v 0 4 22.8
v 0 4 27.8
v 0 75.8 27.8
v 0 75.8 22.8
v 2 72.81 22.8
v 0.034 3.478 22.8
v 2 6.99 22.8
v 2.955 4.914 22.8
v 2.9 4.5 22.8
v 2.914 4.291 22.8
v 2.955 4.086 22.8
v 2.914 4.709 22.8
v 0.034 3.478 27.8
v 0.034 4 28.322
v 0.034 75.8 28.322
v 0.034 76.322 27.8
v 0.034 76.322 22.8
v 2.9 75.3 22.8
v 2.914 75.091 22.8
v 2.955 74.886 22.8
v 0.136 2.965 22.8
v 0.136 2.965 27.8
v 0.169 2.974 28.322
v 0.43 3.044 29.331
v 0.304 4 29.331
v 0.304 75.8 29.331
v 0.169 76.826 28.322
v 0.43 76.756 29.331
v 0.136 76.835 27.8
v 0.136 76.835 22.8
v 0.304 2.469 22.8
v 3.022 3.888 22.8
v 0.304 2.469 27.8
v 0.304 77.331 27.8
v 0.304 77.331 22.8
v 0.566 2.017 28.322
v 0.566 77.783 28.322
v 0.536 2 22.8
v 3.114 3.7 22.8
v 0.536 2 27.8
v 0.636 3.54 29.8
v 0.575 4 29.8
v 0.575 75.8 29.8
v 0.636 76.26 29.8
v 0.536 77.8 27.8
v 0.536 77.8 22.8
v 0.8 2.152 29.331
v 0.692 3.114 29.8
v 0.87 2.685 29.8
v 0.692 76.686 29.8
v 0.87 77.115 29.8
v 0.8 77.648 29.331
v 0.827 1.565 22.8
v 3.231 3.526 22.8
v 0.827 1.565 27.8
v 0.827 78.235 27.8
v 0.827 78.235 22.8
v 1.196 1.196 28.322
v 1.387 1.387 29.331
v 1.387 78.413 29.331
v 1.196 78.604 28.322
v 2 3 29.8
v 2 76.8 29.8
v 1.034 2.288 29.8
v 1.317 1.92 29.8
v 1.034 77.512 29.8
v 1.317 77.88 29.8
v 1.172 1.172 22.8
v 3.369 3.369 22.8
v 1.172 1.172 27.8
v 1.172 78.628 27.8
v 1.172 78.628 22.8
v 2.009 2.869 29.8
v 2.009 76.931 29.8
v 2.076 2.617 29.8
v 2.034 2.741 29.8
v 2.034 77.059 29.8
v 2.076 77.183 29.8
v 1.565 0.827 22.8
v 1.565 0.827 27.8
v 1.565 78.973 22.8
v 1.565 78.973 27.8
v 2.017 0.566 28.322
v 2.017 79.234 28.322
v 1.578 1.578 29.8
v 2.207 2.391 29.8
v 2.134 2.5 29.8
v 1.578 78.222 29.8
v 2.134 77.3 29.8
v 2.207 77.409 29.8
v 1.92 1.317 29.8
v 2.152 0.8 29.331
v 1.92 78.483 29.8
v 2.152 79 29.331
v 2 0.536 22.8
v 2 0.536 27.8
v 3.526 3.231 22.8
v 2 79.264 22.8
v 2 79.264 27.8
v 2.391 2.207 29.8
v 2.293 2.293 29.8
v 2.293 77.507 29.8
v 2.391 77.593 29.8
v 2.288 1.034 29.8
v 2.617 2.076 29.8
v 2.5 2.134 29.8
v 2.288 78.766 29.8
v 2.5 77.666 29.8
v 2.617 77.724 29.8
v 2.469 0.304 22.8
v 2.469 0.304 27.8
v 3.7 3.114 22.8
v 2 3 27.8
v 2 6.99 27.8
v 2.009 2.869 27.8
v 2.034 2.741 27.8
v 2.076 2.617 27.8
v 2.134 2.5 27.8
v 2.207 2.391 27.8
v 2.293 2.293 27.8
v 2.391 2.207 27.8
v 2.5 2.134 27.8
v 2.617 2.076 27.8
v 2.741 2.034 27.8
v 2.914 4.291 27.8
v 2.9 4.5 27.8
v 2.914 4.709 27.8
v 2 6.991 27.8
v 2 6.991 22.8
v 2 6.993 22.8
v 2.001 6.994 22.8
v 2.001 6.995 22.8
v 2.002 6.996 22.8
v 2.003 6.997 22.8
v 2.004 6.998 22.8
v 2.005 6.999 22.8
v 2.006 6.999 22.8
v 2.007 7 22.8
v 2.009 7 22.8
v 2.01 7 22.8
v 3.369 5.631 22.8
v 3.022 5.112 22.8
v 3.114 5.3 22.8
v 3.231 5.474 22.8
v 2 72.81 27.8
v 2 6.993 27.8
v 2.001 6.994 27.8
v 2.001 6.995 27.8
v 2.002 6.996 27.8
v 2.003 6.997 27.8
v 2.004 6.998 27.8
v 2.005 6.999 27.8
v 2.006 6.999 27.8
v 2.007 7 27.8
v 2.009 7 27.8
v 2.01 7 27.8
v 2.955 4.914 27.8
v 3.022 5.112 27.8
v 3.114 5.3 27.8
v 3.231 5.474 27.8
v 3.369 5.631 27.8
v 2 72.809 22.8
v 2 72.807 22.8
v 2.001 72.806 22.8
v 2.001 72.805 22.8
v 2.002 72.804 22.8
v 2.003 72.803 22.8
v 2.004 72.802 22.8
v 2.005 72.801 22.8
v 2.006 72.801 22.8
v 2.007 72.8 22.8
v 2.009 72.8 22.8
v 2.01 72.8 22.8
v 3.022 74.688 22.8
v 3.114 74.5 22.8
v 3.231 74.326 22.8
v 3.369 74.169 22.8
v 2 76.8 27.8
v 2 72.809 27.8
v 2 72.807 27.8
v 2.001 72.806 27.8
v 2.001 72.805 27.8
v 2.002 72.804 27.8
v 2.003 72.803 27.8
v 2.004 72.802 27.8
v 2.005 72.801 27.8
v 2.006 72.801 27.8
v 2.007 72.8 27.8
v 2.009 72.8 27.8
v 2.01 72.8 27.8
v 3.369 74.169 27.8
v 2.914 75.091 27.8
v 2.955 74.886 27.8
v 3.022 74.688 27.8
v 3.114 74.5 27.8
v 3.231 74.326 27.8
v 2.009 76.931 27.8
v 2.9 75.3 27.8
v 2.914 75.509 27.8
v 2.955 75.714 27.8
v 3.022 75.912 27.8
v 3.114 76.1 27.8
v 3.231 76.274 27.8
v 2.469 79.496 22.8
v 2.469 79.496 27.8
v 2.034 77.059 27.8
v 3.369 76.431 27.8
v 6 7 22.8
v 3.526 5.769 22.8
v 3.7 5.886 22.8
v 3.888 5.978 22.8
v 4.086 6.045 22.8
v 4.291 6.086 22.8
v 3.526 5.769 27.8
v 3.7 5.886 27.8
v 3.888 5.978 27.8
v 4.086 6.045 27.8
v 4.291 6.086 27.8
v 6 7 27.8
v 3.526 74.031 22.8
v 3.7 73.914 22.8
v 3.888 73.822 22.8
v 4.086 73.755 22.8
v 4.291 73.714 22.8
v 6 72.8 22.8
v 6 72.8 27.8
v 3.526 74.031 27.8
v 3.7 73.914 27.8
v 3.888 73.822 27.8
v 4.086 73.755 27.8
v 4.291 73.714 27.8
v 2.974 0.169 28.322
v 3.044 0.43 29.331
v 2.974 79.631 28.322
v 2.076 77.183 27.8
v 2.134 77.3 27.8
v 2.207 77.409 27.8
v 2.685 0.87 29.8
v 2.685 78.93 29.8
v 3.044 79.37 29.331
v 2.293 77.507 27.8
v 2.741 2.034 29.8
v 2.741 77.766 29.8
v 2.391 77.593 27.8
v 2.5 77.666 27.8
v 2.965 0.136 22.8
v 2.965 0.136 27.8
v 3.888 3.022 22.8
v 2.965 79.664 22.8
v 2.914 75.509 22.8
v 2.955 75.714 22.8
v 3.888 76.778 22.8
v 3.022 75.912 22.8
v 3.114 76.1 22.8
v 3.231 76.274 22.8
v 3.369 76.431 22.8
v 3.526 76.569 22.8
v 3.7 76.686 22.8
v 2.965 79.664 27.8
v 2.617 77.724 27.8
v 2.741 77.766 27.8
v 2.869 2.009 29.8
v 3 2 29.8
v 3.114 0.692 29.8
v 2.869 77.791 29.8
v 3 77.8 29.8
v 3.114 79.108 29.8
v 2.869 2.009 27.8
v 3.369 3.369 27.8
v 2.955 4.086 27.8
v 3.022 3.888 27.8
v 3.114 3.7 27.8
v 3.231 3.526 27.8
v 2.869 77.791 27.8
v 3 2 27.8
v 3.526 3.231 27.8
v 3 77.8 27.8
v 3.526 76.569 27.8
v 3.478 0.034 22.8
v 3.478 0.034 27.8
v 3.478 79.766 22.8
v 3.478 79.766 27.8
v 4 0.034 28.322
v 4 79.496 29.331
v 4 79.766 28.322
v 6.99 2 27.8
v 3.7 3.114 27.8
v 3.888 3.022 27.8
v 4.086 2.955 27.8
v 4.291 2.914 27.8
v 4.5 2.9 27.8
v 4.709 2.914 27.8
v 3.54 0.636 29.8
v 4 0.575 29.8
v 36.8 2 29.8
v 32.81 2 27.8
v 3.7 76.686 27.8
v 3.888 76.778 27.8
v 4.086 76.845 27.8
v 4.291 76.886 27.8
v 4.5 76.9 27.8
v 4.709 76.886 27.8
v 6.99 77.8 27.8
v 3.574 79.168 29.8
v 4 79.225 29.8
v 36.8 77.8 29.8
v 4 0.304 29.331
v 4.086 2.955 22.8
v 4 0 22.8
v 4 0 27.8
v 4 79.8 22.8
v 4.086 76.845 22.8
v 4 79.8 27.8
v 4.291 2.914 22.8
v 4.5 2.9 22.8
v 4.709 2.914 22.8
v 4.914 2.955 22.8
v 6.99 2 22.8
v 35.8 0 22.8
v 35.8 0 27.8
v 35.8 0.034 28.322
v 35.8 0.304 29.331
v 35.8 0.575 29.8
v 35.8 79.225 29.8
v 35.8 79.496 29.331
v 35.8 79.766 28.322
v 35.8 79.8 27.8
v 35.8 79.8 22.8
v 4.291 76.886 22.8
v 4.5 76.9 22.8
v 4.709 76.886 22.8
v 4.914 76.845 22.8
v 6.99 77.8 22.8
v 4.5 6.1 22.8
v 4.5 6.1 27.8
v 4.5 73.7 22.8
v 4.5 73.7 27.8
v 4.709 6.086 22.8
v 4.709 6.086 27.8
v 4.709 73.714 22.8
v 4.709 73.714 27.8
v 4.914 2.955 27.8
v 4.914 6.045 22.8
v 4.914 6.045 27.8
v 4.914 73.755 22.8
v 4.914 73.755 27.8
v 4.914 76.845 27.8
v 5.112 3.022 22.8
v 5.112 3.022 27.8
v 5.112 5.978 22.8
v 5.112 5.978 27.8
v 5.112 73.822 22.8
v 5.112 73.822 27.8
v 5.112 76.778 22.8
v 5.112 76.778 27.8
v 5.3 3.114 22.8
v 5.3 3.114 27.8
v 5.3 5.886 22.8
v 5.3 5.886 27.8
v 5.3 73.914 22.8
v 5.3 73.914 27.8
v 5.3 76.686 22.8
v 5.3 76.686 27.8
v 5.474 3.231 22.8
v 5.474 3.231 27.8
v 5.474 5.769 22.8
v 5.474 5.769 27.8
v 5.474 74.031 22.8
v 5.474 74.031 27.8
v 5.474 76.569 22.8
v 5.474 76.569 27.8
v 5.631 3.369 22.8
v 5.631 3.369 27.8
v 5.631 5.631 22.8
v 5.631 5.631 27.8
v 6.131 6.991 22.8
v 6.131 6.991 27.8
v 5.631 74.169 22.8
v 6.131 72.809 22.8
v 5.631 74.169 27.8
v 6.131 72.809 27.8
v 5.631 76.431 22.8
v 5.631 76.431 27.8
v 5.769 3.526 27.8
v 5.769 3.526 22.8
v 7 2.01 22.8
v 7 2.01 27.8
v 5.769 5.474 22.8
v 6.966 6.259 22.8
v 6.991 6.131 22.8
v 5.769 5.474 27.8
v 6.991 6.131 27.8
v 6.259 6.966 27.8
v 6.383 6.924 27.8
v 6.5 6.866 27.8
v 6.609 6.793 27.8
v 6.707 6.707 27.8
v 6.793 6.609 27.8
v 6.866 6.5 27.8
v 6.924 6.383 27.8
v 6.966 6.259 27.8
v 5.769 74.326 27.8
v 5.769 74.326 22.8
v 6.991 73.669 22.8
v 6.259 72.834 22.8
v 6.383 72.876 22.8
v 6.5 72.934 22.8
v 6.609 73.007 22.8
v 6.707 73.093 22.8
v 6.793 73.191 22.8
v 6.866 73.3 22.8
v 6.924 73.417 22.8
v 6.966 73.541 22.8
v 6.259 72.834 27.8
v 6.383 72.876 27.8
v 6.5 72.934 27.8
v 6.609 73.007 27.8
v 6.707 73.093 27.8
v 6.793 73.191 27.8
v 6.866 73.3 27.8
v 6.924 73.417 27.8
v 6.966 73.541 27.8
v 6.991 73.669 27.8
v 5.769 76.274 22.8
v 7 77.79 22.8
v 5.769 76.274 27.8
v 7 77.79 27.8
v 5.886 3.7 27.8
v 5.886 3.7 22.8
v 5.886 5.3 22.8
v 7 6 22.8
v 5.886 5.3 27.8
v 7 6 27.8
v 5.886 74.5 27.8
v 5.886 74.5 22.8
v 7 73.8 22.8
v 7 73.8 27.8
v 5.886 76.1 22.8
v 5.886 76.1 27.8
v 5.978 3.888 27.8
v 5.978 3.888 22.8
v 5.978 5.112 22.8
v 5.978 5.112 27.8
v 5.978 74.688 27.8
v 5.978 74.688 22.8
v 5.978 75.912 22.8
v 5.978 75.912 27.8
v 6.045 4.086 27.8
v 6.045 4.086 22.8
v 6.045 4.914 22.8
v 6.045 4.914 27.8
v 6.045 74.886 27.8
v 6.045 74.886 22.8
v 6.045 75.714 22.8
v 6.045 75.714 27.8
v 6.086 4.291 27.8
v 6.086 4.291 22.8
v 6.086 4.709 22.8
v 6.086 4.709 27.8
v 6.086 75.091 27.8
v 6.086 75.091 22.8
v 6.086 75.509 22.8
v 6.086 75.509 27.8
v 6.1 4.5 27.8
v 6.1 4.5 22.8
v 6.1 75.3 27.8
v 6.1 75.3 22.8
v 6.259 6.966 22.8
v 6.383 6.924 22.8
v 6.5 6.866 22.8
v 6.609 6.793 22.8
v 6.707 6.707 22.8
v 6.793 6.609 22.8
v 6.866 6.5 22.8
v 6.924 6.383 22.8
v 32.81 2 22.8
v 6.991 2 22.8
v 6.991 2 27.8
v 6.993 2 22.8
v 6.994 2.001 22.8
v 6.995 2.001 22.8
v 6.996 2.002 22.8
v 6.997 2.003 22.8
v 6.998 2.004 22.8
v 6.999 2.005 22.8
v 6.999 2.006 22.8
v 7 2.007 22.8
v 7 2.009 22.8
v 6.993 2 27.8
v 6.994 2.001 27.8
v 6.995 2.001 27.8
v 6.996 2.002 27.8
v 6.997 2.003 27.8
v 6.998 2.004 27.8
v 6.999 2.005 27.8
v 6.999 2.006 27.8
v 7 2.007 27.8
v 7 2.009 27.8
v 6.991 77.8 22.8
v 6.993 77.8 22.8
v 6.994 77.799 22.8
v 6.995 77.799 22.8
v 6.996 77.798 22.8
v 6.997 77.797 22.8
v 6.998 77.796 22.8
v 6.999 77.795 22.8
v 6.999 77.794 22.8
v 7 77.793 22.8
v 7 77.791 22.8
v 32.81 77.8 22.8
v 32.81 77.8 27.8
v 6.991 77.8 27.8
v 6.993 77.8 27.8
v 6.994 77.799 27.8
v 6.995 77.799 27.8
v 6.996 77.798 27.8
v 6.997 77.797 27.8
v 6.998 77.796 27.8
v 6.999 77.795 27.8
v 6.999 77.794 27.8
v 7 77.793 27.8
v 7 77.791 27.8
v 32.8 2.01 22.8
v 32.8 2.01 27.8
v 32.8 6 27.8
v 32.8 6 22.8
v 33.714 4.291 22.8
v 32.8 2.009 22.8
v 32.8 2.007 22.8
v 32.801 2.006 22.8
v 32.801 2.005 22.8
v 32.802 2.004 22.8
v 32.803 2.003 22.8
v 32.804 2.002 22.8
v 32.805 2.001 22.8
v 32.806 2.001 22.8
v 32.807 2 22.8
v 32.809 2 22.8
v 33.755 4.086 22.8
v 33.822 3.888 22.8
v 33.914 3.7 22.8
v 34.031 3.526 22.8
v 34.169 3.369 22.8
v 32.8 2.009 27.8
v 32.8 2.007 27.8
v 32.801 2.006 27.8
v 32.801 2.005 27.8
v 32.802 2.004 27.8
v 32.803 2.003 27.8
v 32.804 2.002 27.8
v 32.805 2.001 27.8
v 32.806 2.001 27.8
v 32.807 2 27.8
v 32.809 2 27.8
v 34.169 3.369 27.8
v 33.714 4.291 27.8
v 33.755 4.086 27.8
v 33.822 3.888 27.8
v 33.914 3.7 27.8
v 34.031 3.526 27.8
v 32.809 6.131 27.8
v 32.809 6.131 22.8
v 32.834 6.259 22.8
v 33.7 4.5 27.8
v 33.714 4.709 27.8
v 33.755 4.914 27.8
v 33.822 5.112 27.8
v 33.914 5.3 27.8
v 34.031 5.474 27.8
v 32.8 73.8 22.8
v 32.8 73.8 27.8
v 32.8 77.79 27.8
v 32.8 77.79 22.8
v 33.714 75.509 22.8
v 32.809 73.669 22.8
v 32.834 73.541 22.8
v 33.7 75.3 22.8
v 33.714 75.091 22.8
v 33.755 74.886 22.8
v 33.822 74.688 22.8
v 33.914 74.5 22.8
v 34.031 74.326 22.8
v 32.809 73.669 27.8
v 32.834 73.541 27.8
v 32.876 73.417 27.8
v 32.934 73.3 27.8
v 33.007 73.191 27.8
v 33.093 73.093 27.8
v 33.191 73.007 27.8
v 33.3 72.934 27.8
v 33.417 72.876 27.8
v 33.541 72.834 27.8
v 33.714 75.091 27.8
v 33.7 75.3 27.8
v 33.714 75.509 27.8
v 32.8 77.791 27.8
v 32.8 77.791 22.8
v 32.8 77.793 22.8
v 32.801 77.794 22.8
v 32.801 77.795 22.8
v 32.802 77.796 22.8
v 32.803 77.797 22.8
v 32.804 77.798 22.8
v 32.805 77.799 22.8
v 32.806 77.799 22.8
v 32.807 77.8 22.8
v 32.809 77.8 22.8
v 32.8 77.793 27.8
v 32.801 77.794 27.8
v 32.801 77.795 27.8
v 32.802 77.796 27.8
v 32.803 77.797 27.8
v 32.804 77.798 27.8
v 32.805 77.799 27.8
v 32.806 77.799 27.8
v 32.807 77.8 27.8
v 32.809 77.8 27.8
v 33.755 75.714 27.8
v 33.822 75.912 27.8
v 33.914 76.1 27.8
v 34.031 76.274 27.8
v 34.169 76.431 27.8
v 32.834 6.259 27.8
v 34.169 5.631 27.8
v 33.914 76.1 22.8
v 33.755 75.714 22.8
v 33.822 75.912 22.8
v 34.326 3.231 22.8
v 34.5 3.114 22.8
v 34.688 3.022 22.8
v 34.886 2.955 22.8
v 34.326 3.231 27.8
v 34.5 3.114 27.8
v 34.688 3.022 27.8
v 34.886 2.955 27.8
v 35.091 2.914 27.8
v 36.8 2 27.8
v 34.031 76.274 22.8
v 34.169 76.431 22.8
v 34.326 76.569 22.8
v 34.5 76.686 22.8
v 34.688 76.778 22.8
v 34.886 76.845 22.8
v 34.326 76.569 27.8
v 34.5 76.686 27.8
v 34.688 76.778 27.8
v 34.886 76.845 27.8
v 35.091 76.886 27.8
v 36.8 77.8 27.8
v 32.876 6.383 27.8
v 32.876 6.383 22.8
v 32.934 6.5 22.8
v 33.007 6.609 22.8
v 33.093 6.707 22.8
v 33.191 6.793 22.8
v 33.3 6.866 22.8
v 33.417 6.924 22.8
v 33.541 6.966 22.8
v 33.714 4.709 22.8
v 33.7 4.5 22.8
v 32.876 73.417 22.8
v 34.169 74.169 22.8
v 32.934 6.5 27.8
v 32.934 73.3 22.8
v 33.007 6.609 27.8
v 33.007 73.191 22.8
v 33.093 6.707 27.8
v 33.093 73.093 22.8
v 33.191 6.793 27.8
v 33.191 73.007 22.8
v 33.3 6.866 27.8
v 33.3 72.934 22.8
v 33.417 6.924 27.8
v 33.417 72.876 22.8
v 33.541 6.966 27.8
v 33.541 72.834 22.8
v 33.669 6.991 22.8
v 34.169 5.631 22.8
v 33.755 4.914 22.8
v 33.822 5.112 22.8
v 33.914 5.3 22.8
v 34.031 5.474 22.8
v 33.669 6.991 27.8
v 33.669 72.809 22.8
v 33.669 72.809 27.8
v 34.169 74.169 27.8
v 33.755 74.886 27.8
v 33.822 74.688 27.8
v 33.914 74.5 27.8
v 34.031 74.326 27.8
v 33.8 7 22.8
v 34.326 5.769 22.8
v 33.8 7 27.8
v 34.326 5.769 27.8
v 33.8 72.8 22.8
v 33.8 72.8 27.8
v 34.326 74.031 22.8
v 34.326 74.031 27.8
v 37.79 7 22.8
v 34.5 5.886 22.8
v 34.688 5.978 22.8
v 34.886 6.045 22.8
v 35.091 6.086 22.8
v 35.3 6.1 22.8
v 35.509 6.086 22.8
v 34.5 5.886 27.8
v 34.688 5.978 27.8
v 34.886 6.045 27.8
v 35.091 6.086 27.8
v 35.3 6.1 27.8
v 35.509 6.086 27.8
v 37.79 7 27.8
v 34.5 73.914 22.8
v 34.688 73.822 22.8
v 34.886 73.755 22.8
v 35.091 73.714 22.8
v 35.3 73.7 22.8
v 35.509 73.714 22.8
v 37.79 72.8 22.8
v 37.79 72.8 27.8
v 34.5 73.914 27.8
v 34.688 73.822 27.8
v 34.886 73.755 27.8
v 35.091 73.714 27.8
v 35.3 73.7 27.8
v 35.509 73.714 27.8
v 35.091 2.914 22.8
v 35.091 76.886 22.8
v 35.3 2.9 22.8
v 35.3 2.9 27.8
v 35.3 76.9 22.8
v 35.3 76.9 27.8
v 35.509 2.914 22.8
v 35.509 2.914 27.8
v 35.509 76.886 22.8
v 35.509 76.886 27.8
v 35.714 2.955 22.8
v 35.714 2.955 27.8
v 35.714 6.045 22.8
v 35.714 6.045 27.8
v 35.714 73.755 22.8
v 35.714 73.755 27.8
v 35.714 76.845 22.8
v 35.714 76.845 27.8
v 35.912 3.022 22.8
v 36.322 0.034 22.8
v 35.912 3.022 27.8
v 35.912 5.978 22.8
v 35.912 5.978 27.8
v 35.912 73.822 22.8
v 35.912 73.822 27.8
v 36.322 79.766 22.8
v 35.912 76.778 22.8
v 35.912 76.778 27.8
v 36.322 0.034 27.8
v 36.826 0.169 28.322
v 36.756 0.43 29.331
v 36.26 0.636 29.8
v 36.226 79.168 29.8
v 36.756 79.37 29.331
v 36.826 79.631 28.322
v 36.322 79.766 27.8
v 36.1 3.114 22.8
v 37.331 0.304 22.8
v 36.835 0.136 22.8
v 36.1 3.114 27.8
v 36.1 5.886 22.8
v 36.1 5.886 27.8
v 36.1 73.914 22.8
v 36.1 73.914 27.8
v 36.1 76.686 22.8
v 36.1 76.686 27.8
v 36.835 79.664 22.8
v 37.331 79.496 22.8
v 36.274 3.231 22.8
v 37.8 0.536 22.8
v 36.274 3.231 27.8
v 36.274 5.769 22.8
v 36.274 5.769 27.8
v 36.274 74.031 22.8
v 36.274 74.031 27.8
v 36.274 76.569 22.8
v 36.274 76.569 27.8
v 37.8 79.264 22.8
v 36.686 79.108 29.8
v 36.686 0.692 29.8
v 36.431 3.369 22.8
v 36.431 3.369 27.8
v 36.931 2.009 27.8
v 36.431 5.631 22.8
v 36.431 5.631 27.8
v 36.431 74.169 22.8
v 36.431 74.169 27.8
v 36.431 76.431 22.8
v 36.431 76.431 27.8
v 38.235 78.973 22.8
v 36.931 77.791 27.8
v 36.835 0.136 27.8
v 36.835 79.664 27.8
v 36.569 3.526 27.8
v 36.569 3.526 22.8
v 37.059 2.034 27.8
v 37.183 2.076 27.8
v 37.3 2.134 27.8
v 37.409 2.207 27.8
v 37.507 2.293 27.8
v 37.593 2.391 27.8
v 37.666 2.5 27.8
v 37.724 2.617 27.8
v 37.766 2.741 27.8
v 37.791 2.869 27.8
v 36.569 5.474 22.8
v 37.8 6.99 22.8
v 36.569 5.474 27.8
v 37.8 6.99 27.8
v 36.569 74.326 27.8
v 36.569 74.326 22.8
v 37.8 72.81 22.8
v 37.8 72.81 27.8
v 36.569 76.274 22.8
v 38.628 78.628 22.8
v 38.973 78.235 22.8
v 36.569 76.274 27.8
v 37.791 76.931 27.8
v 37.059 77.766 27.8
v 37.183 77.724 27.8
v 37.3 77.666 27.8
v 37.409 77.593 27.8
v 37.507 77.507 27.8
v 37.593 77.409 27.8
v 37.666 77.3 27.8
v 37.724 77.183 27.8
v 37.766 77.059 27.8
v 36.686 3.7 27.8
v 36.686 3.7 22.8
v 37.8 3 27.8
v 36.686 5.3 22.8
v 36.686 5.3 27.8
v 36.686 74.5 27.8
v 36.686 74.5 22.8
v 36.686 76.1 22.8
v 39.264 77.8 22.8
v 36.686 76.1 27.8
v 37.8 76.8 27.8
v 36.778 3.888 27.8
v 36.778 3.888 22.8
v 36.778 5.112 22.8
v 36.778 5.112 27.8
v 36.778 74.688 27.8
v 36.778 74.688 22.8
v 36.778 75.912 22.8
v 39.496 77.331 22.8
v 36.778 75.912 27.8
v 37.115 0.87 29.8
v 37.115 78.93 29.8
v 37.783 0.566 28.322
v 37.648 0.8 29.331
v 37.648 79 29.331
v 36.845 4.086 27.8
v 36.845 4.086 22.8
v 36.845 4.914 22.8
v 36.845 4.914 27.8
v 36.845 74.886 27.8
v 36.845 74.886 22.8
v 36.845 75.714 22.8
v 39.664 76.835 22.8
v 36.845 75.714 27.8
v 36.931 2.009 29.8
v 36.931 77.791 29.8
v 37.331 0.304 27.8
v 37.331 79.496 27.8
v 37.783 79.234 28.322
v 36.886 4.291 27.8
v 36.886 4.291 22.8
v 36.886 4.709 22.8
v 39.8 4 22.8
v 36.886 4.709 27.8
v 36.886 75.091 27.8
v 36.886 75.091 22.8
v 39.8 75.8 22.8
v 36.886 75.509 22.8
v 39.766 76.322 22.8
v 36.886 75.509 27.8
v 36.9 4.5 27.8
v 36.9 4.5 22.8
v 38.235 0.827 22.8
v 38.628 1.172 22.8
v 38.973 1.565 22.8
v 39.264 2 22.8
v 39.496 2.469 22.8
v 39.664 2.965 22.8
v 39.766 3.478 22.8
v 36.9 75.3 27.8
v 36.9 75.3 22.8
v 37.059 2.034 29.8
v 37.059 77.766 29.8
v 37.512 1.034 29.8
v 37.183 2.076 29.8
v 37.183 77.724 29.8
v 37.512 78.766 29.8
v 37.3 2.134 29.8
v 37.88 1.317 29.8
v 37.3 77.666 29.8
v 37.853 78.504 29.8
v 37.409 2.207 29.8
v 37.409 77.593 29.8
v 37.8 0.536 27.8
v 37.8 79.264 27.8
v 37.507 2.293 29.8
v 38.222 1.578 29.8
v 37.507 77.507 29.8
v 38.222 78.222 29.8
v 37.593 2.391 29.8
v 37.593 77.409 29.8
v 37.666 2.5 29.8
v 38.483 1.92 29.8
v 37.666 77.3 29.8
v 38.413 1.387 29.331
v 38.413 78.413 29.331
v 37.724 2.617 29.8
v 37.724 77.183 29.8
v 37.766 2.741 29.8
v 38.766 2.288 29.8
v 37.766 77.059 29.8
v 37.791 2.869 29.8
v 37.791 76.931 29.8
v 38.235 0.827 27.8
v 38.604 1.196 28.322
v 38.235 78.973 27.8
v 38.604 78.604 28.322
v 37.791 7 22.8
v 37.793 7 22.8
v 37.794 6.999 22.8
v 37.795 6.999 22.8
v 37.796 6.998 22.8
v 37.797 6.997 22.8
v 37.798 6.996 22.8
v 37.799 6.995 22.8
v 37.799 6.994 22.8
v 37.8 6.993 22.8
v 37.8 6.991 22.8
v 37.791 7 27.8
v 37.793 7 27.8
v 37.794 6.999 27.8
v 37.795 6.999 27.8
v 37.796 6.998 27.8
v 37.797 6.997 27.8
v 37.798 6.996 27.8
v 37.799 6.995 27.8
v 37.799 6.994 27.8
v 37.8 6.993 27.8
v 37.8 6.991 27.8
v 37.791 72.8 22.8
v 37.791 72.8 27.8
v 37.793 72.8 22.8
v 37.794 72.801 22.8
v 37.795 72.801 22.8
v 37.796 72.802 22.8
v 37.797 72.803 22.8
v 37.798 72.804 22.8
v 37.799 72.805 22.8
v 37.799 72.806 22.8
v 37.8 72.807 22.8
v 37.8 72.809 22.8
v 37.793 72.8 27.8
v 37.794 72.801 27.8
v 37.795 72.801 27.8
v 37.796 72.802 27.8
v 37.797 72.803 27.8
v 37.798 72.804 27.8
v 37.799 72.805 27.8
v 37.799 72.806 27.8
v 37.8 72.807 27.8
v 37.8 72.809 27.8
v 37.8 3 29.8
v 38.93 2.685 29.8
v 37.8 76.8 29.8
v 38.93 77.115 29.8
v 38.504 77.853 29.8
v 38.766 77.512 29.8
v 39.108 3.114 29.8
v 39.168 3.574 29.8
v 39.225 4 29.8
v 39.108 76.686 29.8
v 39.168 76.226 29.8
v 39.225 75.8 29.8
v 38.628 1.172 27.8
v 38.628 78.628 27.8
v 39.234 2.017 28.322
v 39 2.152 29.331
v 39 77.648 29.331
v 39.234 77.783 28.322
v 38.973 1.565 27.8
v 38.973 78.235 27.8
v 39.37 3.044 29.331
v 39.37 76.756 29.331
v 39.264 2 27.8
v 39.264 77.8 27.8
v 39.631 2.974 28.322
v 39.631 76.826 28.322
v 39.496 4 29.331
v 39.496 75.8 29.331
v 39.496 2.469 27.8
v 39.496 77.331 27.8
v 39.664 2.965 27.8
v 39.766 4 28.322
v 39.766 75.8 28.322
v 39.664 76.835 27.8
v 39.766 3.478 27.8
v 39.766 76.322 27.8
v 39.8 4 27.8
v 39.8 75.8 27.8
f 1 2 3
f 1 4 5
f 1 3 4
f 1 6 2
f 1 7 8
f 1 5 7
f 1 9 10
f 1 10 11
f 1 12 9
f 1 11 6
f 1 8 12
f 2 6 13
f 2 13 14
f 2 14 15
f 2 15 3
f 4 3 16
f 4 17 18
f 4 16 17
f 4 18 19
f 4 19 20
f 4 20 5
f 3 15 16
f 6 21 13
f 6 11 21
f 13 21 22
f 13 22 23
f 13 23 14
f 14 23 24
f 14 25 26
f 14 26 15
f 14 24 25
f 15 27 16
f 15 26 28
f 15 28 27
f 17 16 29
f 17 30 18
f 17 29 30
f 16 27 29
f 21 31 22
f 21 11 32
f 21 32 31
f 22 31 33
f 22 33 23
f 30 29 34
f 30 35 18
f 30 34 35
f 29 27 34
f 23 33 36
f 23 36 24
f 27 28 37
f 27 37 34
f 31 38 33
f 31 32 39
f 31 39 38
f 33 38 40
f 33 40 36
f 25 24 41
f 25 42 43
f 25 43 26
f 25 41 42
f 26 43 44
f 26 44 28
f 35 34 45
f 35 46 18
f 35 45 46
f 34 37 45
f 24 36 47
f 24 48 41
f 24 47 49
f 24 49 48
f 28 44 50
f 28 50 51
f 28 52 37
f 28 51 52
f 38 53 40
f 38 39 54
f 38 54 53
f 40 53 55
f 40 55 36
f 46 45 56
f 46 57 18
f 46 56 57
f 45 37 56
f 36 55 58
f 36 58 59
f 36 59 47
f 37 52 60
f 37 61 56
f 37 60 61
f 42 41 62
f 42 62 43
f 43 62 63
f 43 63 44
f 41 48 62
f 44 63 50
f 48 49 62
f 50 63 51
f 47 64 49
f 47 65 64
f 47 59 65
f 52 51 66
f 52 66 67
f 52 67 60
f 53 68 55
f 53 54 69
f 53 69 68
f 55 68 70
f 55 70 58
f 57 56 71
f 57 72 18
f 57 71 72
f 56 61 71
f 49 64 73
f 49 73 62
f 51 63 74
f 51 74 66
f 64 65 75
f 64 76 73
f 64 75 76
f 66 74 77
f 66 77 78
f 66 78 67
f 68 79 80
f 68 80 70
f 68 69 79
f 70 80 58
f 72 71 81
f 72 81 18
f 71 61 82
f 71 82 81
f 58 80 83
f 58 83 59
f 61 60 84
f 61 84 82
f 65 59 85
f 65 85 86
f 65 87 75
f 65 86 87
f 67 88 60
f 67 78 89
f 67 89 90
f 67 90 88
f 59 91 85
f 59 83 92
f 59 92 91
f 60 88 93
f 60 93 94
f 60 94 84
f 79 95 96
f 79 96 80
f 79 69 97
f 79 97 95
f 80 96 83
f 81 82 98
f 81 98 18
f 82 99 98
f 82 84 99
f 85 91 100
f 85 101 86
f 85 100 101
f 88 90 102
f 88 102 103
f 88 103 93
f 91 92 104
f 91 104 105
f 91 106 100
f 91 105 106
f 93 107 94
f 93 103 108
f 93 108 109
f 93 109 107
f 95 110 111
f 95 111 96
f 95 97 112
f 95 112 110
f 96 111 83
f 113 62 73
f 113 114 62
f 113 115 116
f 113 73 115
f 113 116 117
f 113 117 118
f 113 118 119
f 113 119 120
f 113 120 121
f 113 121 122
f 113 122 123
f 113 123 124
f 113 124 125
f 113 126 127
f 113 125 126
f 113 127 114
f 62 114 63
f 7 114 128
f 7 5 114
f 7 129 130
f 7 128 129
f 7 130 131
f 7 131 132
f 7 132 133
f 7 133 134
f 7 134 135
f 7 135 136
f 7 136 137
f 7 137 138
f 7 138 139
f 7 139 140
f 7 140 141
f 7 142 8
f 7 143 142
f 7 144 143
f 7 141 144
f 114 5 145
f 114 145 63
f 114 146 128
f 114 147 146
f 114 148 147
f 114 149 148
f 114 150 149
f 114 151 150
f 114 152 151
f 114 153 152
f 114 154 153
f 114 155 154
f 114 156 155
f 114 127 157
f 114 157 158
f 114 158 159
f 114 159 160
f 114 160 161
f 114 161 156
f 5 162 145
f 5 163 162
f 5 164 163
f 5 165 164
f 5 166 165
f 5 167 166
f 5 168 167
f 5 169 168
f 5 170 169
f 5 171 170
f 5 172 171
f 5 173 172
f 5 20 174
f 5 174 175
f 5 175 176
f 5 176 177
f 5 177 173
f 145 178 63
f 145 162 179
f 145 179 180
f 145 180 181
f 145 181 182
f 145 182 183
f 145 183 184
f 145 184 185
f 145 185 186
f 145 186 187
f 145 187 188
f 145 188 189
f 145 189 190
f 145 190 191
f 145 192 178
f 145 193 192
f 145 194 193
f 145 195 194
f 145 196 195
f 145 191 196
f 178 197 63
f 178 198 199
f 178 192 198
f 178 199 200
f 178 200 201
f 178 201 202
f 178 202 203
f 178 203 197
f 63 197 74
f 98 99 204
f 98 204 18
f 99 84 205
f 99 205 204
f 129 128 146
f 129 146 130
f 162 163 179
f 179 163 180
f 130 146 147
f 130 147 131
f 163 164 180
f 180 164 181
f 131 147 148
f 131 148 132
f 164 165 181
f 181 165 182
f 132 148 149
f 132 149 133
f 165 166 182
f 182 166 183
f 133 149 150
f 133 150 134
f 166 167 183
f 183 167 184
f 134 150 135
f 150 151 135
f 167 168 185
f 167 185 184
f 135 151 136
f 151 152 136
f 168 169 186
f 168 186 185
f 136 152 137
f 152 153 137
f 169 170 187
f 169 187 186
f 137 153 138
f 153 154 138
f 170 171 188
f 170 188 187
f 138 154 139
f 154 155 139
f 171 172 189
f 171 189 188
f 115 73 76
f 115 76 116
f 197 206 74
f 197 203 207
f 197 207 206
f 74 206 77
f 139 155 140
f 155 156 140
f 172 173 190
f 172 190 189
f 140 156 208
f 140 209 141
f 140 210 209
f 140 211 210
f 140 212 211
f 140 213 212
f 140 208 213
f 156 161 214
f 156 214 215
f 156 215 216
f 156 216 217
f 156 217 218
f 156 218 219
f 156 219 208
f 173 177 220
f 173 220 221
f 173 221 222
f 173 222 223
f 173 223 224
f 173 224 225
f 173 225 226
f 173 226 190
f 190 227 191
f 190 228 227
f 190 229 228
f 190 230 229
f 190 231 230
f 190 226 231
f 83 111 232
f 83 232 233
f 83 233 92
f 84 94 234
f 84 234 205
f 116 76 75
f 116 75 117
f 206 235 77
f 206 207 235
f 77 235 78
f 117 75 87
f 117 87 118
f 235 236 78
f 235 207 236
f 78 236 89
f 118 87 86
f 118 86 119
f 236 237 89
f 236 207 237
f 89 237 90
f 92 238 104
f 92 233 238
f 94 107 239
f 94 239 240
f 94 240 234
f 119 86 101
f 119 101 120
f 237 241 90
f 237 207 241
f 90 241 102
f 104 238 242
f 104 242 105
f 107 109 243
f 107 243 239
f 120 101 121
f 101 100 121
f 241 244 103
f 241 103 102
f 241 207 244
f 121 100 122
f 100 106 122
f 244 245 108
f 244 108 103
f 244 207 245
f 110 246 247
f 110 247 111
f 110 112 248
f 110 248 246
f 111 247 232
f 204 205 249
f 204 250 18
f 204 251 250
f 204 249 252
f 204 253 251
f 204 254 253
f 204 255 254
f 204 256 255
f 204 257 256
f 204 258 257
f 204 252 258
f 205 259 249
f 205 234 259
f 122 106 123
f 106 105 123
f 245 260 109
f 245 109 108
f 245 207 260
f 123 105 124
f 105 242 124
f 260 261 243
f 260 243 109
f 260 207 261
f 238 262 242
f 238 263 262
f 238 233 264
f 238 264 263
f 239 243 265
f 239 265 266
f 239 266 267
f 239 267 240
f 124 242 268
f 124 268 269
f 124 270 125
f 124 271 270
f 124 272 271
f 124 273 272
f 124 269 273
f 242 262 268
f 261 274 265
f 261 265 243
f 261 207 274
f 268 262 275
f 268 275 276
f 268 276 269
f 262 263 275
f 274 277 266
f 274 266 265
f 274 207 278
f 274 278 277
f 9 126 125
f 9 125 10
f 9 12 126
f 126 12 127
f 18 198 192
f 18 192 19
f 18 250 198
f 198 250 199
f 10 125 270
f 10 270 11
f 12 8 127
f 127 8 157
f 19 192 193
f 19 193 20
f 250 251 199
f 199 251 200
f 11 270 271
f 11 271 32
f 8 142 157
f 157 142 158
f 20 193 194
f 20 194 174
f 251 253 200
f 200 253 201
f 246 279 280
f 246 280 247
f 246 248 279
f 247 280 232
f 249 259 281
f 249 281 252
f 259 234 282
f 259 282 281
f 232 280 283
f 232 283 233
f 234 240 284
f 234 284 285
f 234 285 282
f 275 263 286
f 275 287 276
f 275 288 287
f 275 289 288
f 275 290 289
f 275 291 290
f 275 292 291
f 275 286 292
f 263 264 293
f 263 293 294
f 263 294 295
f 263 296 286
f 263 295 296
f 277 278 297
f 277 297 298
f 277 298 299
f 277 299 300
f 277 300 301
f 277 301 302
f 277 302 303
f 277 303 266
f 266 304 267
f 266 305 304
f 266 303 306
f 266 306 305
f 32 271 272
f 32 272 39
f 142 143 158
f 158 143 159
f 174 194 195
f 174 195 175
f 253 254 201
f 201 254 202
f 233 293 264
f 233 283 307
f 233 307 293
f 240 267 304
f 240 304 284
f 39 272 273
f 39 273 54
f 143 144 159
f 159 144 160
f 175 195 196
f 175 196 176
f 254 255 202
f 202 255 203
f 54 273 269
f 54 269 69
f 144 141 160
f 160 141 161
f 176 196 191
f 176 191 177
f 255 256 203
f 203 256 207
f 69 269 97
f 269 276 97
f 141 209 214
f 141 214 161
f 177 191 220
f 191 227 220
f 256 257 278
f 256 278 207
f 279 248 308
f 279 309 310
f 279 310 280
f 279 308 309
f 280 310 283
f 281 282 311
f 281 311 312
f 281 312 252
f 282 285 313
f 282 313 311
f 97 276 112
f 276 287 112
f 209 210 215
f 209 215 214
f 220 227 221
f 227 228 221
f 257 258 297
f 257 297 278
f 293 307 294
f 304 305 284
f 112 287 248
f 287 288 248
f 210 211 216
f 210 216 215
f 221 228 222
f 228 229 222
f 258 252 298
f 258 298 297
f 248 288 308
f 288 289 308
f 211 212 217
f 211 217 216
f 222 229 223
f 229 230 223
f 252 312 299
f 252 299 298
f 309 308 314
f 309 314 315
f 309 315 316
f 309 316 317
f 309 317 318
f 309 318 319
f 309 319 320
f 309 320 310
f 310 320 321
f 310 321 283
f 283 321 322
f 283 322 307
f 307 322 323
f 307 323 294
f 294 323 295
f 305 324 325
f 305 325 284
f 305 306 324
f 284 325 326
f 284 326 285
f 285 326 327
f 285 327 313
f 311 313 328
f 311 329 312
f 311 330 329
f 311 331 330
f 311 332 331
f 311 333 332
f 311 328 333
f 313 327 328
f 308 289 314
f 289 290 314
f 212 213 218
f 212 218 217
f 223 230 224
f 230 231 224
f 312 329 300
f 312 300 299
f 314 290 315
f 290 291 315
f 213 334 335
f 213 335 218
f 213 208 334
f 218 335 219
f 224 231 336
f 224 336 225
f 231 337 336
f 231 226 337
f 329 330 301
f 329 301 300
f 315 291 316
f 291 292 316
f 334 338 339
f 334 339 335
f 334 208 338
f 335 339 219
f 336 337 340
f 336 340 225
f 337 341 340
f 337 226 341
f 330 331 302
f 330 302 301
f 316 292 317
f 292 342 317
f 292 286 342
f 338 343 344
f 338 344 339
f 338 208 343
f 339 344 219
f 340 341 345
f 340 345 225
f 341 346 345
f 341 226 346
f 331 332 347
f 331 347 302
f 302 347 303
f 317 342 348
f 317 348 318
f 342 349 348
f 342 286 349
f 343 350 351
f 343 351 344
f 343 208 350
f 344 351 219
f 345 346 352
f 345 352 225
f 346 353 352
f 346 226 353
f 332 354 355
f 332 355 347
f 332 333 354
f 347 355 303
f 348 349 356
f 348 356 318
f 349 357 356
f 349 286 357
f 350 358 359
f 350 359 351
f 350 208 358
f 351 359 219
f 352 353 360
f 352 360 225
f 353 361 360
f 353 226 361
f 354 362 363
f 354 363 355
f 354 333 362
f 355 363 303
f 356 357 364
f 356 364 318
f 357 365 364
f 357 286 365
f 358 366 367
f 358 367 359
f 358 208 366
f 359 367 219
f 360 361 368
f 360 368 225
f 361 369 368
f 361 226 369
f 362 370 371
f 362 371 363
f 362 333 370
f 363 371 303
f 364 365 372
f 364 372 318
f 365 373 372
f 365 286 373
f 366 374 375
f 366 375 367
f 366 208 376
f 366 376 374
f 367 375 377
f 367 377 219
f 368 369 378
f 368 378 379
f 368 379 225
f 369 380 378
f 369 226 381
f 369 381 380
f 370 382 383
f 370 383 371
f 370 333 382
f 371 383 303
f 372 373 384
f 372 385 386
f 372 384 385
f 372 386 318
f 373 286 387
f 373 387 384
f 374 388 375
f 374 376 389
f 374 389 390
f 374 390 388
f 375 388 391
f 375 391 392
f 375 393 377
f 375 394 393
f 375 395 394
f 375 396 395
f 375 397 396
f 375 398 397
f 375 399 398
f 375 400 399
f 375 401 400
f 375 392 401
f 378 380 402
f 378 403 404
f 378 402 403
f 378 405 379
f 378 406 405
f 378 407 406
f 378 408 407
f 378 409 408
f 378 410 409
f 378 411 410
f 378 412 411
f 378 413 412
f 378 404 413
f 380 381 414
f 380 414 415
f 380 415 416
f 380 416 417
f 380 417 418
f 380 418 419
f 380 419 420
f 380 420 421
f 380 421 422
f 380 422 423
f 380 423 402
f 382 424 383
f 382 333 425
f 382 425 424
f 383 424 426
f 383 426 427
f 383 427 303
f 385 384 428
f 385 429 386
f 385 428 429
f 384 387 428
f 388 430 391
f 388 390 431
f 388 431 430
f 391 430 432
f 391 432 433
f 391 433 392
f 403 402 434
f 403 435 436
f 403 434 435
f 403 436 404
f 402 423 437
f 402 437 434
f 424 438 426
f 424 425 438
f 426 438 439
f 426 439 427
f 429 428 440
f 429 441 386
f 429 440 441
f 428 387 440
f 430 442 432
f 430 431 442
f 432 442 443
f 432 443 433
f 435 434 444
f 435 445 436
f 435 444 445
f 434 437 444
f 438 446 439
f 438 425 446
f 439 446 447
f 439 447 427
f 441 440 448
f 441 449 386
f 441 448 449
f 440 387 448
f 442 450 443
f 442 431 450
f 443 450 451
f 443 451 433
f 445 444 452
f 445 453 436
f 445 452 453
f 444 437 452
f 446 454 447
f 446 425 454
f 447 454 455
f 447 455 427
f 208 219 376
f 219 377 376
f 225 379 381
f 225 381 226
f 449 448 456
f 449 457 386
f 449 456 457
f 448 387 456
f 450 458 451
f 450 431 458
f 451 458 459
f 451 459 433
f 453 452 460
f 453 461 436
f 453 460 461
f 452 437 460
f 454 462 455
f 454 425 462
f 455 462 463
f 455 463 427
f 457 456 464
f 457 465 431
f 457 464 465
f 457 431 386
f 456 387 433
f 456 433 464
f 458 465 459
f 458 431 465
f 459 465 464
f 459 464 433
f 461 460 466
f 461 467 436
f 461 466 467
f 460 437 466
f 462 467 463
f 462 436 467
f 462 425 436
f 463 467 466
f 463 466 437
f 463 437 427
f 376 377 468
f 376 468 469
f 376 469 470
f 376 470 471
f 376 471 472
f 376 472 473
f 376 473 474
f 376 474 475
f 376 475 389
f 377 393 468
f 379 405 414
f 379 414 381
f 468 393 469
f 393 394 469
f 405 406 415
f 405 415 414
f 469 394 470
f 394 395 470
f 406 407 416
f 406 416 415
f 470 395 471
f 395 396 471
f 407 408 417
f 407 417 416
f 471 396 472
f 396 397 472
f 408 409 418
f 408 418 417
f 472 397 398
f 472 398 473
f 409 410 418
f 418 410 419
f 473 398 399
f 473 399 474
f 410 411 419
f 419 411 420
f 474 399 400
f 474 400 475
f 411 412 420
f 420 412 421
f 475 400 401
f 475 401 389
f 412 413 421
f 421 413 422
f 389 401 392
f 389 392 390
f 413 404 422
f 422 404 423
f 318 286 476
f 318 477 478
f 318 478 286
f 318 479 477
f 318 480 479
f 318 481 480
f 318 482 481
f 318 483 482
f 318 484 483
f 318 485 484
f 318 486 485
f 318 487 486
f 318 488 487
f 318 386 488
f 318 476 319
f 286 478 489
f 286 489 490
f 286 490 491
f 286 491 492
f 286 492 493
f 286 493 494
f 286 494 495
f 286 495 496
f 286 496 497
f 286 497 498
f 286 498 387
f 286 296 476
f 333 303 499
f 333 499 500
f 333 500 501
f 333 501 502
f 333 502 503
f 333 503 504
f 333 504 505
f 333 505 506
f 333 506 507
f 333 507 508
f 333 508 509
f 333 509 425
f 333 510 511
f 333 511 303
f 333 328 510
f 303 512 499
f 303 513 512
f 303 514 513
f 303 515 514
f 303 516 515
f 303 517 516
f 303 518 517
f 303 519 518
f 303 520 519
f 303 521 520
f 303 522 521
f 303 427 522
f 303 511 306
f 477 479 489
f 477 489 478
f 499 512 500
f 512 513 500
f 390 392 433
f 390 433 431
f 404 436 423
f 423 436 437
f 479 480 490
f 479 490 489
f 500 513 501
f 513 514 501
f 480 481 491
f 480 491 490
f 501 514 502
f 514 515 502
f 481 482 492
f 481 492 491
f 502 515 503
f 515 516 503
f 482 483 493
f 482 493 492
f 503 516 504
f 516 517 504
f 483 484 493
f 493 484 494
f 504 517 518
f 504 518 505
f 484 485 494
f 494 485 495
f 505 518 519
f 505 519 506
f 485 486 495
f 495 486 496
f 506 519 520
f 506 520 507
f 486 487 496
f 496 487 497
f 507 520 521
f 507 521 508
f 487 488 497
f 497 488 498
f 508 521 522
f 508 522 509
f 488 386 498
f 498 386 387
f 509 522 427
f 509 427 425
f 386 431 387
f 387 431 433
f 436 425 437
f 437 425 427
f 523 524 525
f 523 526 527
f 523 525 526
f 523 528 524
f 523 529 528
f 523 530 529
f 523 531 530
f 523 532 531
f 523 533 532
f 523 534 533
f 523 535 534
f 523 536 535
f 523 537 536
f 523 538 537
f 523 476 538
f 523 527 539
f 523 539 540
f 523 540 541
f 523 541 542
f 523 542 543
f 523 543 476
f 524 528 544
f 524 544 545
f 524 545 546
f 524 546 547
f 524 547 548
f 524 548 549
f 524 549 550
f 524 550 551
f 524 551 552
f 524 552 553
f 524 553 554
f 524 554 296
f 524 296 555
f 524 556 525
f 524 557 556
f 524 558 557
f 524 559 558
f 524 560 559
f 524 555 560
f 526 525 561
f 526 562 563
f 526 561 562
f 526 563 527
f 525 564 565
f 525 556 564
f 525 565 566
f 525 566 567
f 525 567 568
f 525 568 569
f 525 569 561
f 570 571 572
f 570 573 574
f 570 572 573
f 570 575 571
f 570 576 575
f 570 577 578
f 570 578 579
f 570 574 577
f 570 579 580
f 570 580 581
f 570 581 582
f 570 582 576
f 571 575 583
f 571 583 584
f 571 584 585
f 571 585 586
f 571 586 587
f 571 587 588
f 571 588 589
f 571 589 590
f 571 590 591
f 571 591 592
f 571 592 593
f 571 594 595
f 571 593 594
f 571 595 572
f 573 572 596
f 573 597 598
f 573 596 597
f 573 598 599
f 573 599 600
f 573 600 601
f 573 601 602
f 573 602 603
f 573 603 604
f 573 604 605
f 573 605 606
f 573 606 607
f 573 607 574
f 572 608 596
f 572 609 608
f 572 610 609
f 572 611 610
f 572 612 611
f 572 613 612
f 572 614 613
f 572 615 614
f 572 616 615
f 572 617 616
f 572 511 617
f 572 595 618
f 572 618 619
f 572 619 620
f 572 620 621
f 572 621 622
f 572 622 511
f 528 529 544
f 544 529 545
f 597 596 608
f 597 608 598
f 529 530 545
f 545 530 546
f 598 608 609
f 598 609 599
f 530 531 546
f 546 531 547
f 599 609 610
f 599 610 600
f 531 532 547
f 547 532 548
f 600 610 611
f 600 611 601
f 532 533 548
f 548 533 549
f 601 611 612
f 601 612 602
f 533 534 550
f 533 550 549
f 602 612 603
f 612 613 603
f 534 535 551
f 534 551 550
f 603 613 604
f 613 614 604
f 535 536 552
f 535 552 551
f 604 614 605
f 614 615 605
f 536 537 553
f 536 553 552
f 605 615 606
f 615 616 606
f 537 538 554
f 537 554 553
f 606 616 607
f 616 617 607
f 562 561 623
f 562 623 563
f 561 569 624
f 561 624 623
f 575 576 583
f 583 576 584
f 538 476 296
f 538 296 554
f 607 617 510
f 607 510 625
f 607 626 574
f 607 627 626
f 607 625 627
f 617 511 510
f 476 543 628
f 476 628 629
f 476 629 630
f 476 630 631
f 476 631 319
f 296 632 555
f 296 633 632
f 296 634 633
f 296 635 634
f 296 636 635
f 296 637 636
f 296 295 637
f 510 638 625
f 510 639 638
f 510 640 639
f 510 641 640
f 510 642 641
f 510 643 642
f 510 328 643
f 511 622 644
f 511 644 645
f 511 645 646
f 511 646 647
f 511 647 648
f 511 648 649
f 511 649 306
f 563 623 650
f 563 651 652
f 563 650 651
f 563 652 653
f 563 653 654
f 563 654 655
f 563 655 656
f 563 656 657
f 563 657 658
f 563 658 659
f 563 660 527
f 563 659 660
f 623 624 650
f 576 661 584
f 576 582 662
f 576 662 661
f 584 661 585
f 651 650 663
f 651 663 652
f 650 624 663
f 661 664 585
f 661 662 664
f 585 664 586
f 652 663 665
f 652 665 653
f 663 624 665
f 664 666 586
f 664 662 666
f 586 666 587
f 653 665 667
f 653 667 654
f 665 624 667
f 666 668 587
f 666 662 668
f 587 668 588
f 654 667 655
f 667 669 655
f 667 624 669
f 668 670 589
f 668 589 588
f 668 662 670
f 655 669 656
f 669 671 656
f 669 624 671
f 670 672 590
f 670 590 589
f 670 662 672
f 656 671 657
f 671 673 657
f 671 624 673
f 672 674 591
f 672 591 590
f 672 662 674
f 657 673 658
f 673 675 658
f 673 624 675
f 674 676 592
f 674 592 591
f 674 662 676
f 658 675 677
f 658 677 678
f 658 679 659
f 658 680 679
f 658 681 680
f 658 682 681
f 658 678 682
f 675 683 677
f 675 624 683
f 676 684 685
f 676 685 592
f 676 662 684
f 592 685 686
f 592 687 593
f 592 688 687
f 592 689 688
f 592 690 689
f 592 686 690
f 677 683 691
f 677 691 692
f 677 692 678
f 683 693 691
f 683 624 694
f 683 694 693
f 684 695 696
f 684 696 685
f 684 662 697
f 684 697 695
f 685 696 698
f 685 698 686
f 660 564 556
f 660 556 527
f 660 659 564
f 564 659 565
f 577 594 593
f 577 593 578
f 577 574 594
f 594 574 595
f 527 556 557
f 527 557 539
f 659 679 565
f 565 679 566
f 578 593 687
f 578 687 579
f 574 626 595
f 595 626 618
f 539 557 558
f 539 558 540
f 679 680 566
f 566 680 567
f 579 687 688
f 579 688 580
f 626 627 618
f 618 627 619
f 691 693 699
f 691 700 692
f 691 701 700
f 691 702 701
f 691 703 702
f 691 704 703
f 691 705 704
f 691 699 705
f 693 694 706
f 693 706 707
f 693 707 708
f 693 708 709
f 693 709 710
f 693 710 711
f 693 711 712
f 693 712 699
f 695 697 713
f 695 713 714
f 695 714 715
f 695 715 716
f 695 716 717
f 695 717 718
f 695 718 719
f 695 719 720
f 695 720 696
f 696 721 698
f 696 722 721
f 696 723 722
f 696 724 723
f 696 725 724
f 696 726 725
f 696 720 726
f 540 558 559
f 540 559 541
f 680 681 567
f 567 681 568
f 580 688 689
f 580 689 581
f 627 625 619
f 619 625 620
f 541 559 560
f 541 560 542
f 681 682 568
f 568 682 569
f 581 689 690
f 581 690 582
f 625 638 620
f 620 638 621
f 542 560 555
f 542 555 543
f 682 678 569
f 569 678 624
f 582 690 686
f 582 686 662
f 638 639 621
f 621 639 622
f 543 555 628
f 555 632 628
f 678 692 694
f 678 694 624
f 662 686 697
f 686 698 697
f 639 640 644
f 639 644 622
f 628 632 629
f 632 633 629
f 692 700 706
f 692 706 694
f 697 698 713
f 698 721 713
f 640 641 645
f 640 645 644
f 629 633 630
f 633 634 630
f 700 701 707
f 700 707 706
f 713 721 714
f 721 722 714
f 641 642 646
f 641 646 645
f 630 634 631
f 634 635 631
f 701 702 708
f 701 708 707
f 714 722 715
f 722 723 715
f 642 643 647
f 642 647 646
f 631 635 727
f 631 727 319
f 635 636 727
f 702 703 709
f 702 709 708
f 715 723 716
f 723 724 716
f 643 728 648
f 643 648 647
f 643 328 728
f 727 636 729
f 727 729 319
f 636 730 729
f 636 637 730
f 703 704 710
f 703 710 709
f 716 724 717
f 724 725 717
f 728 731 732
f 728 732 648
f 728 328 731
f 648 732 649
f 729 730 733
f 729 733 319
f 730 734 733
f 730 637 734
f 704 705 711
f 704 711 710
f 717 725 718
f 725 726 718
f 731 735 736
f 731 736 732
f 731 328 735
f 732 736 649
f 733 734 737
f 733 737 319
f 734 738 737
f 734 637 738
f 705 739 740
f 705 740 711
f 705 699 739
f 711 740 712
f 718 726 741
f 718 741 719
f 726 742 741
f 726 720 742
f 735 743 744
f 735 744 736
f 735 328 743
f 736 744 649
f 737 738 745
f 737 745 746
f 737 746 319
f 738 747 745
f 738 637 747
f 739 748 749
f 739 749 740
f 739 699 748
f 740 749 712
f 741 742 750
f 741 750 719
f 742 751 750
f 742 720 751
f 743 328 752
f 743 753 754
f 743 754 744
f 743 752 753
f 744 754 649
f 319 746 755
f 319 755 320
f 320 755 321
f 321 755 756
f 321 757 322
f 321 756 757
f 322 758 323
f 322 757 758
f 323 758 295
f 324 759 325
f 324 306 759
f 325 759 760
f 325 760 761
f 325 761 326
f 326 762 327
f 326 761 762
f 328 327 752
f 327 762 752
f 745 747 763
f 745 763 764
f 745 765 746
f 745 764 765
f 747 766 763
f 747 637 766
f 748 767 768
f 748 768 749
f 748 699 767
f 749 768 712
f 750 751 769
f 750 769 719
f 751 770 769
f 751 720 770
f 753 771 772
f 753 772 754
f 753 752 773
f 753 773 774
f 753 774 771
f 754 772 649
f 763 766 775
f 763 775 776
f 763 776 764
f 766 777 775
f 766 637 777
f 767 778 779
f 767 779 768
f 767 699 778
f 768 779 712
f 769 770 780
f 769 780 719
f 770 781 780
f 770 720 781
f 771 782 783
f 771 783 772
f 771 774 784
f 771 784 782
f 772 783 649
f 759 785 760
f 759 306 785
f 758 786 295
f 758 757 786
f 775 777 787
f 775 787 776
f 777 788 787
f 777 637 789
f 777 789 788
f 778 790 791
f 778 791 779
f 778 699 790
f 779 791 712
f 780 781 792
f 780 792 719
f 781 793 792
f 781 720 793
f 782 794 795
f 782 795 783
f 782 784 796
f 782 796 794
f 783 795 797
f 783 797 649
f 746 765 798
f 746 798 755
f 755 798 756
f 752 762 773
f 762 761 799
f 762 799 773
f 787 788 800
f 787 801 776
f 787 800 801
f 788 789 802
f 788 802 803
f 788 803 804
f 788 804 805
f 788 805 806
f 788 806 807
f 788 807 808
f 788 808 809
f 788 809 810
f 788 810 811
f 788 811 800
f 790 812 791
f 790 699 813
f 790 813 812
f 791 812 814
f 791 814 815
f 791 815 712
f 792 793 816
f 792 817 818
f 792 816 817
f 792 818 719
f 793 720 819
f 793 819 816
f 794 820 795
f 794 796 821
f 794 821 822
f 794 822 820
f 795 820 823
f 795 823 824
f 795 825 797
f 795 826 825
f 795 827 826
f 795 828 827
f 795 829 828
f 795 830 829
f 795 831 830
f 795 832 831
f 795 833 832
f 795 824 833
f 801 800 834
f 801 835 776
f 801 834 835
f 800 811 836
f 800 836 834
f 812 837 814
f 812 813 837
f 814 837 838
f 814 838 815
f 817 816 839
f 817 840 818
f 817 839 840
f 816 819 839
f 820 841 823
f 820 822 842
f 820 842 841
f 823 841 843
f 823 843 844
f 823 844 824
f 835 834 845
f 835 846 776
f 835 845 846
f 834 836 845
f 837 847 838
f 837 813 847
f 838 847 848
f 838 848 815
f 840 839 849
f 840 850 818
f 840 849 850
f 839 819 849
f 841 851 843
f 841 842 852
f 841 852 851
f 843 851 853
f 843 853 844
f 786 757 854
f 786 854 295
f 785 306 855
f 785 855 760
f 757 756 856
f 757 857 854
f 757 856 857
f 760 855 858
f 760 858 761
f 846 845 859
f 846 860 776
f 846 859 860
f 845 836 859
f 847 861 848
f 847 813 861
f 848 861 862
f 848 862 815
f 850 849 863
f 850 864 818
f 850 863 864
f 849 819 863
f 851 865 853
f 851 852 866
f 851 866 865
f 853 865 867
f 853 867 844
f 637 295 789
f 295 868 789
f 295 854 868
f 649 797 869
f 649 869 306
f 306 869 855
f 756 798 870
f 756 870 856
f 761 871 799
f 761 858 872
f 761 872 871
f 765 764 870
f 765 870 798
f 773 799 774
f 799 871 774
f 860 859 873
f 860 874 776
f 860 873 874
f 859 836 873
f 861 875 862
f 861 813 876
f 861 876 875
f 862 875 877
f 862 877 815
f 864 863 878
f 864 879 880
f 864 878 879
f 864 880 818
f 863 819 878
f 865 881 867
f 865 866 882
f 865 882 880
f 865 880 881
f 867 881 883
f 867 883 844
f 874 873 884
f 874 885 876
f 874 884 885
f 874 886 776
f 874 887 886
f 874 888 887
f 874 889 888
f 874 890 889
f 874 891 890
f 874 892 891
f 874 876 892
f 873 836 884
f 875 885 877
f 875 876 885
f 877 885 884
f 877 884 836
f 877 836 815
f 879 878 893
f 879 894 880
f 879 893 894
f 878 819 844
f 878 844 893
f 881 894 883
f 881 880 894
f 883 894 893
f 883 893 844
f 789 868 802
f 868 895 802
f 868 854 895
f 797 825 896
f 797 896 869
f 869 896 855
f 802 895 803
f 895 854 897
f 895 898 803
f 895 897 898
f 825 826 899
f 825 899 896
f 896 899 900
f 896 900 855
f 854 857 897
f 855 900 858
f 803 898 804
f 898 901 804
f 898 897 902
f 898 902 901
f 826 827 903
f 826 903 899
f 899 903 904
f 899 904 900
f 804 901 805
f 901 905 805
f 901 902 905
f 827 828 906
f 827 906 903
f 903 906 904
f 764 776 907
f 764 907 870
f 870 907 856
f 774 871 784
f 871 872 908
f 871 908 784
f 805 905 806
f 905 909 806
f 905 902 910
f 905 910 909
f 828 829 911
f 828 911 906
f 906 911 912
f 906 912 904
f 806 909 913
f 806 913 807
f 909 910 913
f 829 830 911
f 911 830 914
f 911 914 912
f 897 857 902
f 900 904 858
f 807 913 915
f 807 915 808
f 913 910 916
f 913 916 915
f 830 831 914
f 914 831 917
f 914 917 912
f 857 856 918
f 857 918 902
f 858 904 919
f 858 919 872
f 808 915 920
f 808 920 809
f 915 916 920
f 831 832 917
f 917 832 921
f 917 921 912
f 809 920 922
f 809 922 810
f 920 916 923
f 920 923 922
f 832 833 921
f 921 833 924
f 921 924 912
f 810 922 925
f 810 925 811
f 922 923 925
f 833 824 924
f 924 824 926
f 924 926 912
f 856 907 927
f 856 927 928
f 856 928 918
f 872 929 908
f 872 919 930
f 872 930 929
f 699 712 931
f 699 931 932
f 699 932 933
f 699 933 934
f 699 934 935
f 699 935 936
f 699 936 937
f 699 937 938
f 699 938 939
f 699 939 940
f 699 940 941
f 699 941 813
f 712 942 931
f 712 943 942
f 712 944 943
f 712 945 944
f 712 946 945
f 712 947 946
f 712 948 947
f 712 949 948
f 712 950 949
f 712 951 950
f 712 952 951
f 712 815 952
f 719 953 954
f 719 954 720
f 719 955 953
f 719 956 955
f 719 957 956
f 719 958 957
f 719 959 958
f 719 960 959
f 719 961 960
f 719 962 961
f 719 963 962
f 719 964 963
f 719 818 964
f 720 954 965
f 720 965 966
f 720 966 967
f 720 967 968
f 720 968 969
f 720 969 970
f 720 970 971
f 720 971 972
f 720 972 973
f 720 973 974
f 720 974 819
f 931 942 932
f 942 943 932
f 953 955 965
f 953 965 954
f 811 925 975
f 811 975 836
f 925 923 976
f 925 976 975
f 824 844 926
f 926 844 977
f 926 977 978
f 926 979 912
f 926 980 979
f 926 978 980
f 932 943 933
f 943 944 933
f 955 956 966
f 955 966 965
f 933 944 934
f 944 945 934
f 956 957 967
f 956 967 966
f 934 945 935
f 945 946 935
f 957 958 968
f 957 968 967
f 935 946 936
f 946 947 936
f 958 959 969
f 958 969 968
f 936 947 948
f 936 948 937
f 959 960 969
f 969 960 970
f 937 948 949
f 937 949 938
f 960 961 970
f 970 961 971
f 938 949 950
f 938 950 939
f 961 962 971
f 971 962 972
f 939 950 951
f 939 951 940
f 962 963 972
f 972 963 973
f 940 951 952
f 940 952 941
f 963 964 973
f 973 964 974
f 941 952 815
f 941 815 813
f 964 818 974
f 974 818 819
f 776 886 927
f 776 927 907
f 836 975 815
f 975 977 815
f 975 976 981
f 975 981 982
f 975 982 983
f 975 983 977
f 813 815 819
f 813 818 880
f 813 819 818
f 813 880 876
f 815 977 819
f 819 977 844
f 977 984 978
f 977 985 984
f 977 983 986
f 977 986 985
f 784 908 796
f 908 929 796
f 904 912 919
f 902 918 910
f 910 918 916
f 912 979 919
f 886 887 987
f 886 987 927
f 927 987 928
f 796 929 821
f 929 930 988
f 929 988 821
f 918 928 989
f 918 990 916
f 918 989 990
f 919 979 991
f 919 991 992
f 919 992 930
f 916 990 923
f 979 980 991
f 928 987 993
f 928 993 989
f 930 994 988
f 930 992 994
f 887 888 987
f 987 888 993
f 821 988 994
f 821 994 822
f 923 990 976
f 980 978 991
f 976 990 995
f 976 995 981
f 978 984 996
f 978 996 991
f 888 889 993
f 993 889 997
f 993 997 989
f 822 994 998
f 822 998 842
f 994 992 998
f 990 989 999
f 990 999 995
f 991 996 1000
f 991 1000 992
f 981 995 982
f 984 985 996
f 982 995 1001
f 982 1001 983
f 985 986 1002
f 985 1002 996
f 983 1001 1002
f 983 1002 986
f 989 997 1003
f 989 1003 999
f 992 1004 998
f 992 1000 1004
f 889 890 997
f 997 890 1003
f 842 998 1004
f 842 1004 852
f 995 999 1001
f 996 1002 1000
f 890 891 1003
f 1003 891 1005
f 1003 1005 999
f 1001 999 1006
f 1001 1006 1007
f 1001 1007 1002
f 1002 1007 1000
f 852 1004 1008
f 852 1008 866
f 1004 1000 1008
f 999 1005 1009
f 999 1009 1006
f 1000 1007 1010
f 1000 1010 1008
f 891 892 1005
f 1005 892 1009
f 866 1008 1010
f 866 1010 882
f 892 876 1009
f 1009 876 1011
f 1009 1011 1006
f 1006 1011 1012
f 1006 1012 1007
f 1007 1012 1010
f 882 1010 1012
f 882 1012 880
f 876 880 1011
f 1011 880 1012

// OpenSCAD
// Dilder Top Cover v3 — open border frame with rounded inner corners for flush plate seating
//
// No dome, no floor — just the perimeter wall ring + 4 corner pillar posts.
// Solid border all around (no wire notch).
// Inner corners and countersink pocket are rounded to match the windowed plate's corner radius,
// allowing it to slide in flush at the pillar junctions.
//
// Export:
//   openscad -o top-cover-v3.3mf top-cover-v3.scad

$fn = 48;

// ---- Board (Olimex ESP32-S3-DevKit-Lipo) ----
board_len      = 56;
board_wid      = 28;
antenna_proj   = 6;

// ---- Waveshare 2.13" display ----
disp_len       = 65;
disp_wid       = 30;
disp_thk       = 5;

// ---- 1000 mAh battery ----
bat_len        = 52;
bat_wid        = 35;

// ---- Enclosure geometry ----
wall_thk       = 2;
plate_thk      = 2;
pillar         = 5;
slop           = 0.4;
bat_chamber_h  = 6;
disp_clear     = 1;
board_thk      = 1.6;
wroom_h        = 3.2;
top_gap        = 5;

screw_clr      = 3.2;

// ---- Rounding ----
case_corner_r  = 4;
plate_corner_r = 1;       // must match windowed plate's corner radius
top_edge_r     = 2;       // top edge bullnose radius

// ---- Z layout ----
z_base_top     = plate_thk;
z_mid_bot      = z_base_top + bat_chamber_h;
z_mid_top      = z_mid_bot + plate_thk;
z_board_bot    = z_mid_top;
z_board_top    = z_board_bot + board_thk;
z_wroom_top    = z_board_top + wroom_h;
z_disp_bot     = z_wroom_top + disp_clear;
z_disp_top     = z_disp_bot + disp_thk;
base_wall_top  = z_disp_top + plate_thk;
z_cover_bot    = base_wall_top;
cover_h        = plate_thk + top_gap;

// ---- XY layout ----
inner_wid      = max(board_wid, disp_wid, bat_wid) + 2 * slop;
inner_len      = max(board_len + antenna_proj, disp_len + 2 * pillar, bat_len) + 2 * slop;
outer_wid      = inner_wid + 2 * wall_thk;
outer_len      = inner_len + 2 * wall_thk;

pillar_xy = [
    [wall_thk,                             wall_thk                            ],
    [outer_wid - wall_thk - pillar,        wall_thk                            ],
    [wall_thk,                             outer_len - wall_thk - pillar       ],
    [outer_wid - wall_thk - pillar,        outer_len - wall_thk - pillar       ],
];


// ============== SHARED ==============

module rounded_v_box(w, l, h, r, fn = 48) {
    hull() {
        for (x = [r, w - r])
            for (y = [r, l - r])
                translate([x, y, 0])
                    cylinder(r = r, h = h, $fn = fn);
    }
}

// Pillar with only one corner rounded (the exposed inner corner).
// round_x/round_y: 0=near edge, 1=far edge — selects which corner gets the radius.
module pillar_one_round(w, l, h, r, round_x, round_y) {
    tiny = 0.01;
    hull() {
        for (ix = [0, 1])
            for (iy = [0, 1]) {
                cr = (ix == round_x && iy == round_y) ? r : tiny;
                translate([cr + ix * (w - 2*cr), cr + iy * (l - 2*cr), 0])
                    cylinder(r = cr, h = h, $fn = 48);
            }
    }
}


// ============== TOP COVER v3 ==============

module top_cover() {
    translate([0, 0, z_cover_bot])
    difference() {
        union() {
            // Outer wall ring — rounded outer edges, bullnose top, rounded inner edges
            difference() {
                // Outer shell with rounded top edge
                intersection() {
                    hull() {
                        for (x = [case_corner_r, outer_wid - case_corner_r])
                            for (y = [case_corner_r, outer_len - case_corner_r]) {
                                translate([x, y, 0])
                                    cylinder(r = case_corner_r, h = cover_h - top_edge_r, $fn = 48);
                                translate([x, y, cover_h - top_edge_r])
                                    sphere(r = case_corner_r, $fn = 24);
                            }
                    }
                    // Clip bottom flat
                    cube([outer_wid, outer_len, cover_h]);
                }
                // Inner cavity with rounded corners
                translate([wall_thk, wall_thk, -0.1])
                    rounded_v_box(inner_wid, inner_len, cover_h + 0.2, plate_corner_r);
            }

            // Pillar posts — only the exposed inner corner is rounded
            for (p = pillar_xy) {
                rx = (p[0] < outer_wid/2) ? 1 : 0;
                ry = (p[1] < outer_len/2) ? 1 : 0;
                translate([p[0], p[1], 0])
                    pillar_one_round(pillar, pillar, cover_h, plate_corner_r, rx, ry);
            }
        }

        // Countersink — single rounded pocket matching plate footprint
        // Cuts into pillar tops with rounded inner corners so plate seats flush
        translate([wall_thk, wall_thk, cover_h - plate_thk])
            rounded_v_box(inner_wid, inner_len, plate_thk + 0.1, plate_corner_r);

        // Screw clearance holes through pillars
        for (p = pillar_xy) {
            cx = p[0] + pillar/2;
            cy = p[1] + pillar/2;
            translate([cx, cy, -0.1])
                cylinder(h = cover_h + 0.2, d = screw_clr);
        }
    }
}

top_cover();
